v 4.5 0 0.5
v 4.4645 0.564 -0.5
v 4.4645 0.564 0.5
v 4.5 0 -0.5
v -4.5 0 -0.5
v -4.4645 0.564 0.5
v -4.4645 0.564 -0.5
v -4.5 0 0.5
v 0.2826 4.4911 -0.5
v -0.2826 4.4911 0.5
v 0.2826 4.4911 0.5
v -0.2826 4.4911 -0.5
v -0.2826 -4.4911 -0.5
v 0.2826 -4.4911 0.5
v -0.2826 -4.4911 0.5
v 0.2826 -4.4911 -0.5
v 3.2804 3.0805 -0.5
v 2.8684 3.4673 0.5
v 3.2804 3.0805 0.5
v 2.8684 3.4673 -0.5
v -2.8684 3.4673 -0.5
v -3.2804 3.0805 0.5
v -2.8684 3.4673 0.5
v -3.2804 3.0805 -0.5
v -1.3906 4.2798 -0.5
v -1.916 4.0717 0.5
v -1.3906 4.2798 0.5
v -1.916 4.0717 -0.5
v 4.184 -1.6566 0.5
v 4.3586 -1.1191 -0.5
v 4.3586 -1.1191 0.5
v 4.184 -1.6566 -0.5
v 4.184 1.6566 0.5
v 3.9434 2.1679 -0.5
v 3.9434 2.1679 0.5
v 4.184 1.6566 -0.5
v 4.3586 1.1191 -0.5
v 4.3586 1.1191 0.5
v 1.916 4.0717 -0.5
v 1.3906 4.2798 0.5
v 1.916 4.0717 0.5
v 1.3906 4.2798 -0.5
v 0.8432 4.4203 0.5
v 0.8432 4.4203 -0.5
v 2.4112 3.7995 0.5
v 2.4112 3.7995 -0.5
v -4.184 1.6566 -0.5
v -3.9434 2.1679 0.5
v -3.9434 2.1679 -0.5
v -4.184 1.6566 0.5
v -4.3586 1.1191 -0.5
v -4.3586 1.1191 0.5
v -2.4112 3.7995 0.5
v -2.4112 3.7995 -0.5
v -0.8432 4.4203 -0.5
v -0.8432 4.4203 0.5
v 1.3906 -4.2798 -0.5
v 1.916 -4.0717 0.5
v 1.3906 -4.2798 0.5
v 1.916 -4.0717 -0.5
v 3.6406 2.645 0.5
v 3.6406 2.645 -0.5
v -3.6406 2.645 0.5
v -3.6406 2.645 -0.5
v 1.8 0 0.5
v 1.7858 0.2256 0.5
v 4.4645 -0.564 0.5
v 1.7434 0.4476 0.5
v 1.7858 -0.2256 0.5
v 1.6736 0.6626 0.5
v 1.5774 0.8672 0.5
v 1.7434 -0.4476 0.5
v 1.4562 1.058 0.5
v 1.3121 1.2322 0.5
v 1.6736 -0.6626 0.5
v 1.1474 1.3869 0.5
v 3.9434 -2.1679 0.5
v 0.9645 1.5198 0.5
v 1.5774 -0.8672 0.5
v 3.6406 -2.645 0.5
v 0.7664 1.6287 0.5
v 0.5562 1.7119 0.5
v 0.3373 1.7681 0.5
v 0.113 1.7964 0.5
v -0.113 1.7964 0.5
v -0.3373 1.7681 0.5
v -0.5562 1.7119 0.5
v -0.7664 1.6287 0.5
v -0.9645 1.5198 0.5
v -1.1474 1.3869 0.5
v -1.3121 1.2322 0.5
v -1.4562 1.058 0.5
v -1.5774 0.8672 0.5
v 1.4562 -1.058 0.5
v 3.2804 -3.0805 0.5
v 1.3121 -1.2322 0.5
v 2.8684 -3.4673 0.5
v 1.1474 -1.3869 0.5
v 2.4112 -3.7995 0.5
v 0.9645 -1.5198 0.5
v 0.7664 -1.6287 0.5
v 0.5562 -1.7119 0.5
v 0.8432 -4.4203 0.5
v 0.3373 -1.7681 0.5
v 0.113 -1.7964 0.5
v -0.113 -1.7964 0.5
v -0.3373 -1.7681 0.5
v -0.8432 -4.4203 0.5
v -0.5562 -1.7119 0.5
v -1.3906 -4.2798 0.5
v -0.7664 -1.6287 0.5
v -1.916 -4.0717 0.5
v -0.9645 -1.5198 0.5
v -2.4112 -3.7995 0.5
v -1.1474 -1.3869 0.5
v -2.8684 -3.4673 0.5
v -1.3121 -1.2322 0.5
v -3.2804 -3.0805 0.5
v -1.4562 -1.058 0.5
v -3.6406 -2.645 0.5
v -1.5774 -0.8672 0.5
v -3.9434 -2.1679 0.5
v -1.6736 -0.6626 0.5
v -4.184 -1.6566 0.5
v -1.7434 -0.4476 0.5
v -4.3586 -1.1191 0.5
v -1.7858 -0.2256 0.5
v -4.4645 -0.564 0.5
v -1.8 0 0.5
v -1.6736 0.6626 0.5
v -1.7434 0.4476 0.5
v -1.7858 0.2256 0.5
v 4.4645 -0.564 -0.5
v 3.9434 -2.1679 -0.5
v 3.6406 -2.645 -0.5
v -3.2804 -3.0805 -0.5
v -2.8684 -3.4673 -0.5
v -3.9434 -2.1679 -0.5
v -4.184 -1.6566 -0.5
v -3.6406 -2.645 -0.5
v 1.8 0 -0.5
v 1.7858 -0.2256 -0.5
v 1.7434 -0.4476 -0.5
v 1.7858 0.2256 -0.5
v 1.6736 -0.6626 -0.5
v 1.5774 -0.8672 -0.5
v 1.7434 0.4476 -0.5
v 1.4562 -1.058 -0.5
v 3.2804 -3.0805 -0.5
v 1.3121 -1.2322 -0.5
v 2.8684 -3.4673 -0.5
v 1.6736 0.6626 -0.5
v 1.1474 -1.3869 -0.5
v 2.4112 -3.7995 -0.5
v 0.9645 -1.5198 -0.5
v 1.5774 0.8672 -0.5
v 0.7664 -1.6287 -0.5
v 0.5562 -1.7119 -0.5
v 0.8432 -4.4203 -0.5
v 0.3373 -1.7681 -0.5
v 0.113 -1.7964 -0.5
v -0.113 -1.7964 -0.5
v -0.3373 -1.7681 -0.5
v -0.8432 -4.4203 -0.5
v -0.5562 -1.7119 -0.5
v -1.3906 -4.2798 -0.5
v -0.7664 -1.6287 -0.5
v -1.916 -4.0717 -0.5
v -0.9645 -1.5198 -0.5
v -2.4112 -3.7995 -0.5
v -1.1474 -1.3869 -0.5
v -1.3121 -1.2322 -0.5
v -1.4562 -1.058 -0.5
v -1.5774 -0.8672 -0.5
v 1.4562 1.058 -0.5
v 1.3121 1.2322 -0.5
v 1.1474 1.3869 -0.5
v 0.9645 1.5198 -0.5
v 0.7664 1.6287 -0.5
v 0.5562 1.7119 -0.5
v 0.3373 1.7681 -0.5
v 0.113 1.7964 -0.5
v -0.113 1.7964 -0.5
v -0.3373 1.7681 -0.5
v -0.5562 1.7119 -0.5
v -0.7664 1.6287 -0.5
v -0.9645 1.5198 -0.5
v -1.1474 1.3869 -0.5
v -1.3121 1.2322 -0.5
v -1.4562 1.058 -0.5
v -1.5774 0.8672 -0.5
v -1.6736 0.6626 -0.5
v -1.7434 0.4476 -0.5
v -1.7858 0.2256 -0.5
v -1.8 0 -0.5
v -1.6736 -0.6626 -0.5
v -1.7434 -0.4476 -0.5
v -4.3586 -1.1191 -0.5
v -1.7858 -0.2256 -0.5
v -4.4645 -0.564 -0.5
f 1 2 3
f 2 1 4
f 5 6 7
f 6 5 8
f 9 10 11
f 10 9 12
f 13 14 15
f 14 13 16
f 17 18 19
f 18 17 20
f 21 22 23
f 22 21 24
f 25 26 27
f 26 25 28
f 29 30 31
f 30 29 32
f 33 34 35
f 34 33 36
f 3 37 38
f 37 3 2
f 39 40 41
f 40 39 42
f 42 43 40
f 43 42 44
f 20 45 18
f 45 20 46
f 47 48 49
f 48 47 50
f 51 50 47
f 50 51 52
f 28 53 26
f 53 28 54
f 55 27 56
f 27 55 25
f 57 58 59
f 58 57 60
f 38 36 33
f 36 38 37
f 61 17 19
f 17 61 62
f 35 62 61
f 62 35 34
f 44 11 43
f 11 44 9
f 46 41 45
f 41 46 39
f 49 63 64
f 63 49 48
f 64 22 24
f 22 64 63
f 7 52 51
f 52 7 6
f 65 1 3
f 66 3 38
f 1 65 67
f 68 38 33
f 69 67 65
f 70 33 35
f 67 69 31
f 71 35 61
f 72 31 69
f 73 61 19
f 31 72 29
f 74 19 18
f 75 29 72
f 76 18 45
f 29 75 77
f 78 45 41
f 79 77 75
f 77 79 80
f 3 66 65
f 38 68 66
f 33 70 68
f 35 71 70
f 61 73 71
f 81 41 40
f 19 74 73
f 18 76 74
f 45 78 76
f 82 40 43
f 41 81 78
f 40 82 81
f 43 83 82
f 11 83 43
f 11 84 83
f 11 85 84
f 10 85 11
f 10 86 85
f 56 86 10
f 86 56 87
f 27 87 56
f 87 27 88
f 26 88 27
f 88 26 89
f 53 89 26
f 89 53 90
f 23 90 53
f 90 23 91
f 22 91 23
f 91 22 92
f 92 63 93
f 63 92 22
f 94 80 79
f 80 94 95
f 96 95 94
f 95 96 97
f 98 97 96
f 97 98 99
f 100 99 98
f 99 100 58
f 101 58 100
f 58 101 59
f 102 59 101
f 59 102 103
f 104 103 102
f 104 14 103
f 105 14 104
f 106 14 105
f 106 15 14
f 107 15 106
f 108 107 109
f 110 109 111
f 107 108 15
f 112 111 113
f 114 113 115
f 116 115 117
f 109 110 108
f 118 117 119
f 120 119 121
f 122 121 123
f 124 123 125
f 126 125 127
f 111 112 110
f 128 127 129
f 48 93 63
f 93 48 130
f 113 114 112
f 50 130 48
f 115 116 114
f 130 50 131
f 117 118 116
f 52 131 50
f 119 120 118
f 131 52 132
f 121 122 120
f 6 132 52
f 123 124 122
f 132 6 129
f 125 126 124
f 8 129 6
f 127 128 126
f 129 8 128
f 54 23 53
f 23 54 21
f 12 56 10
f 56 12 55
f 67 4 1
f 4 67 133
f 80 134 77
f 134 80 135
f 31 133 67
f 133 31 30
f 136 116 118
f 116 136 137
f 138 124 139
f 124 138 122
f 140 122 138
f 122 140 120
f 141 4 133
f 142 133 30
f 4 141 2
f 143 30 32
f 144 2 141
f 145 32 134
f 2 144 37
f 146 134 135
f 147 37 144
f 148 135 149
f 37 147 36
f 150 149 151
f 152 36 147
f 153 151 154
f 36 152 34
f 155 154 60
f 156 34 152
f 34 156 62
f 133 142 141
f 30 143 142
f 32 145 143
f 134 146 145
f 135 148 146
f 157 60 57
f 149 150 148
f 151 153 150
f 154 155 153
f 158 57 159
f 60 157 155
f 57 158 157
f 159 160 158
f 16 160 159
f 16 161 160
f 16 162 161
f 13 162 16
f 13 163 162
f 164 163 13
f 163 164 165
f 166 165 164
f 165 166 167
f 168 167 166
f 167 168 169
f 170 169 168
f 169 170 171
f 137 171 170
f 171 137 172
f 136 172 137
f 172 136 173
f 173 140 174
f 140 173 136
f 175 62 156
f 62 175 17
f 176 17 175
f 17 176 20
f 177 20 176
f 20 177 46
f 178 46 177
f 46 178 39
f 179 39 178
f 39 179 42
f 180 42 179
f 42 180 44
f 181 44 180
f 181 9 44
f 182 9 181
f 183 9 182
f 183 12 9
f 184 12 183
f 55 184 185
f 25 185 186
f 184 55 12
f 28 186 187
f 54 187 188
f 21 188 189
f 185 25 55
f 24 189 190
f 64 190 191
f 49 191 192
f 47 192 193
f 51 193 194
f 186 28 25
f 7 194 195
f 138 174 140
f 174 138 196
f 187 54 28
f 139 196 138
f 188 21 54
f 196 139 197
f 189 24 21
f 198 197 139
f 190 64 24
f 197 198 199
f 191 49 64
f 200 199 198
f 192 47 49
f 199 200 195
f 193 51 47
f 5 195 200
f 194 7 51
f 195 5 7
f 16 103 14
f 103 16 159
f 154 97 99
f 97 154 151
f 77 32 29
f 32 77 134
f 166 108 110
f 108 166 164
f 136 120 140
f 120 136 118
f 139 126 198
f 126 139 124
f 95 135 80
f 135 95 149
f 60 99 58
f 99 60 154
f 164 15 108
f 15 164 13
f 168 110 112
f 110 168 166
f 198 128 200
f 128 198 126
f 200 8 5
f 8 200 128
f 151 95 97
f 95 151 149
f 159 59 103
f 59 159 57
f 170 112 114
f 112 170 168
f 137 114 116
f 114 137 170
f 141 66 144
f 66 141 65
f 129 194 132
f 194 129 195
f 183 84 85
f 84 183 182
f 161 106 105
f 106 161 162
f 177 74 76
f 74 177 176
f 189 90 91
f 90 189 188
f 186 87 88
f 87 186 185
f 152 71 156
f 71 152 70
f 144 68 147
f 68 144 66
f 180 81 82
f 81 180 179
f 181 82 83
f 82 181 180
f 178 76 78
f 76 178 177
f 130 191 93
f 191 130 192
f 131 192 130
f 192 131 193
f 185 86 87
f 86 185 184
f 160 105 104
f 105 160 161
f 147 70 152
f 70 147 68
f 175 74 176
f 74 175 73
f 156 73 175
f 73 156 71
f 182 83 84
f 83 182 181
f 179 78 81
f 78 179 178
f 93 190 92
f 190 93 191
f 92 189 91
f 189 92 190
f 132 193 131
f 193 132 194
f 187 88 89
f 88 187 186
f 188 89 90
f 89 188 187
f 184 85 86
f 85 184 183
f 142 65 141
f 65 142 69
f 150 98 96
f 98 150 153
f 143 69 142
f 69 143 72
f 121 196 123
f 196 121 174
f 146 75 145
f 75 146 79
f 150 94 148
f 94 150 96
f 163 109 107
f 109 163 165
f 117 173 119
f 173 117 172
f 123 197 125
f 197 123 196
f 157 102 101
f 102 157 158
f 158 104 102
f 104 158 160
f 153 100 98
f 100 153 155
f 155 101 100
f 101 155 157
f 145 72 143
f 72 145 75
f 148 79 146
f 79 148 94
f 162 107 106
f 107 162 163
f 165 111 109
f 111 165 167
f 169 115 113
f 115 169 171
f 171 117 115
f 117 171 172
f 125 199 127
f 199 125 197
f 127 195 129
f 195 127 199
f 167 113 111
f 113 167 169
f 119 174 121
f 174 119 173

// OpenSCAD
$fn = 50;


difference() {
	union() {
		translate(v = [0, 0, -0.5000000000]) {
			cylinder(h = 1, r = 4.5000000000);
		}
	}
	union() {
		translate(v = [0, 0, -100.0000000000]) {
			cylinder(h = 200, r = 1.8000000000);
		}
	}
}
